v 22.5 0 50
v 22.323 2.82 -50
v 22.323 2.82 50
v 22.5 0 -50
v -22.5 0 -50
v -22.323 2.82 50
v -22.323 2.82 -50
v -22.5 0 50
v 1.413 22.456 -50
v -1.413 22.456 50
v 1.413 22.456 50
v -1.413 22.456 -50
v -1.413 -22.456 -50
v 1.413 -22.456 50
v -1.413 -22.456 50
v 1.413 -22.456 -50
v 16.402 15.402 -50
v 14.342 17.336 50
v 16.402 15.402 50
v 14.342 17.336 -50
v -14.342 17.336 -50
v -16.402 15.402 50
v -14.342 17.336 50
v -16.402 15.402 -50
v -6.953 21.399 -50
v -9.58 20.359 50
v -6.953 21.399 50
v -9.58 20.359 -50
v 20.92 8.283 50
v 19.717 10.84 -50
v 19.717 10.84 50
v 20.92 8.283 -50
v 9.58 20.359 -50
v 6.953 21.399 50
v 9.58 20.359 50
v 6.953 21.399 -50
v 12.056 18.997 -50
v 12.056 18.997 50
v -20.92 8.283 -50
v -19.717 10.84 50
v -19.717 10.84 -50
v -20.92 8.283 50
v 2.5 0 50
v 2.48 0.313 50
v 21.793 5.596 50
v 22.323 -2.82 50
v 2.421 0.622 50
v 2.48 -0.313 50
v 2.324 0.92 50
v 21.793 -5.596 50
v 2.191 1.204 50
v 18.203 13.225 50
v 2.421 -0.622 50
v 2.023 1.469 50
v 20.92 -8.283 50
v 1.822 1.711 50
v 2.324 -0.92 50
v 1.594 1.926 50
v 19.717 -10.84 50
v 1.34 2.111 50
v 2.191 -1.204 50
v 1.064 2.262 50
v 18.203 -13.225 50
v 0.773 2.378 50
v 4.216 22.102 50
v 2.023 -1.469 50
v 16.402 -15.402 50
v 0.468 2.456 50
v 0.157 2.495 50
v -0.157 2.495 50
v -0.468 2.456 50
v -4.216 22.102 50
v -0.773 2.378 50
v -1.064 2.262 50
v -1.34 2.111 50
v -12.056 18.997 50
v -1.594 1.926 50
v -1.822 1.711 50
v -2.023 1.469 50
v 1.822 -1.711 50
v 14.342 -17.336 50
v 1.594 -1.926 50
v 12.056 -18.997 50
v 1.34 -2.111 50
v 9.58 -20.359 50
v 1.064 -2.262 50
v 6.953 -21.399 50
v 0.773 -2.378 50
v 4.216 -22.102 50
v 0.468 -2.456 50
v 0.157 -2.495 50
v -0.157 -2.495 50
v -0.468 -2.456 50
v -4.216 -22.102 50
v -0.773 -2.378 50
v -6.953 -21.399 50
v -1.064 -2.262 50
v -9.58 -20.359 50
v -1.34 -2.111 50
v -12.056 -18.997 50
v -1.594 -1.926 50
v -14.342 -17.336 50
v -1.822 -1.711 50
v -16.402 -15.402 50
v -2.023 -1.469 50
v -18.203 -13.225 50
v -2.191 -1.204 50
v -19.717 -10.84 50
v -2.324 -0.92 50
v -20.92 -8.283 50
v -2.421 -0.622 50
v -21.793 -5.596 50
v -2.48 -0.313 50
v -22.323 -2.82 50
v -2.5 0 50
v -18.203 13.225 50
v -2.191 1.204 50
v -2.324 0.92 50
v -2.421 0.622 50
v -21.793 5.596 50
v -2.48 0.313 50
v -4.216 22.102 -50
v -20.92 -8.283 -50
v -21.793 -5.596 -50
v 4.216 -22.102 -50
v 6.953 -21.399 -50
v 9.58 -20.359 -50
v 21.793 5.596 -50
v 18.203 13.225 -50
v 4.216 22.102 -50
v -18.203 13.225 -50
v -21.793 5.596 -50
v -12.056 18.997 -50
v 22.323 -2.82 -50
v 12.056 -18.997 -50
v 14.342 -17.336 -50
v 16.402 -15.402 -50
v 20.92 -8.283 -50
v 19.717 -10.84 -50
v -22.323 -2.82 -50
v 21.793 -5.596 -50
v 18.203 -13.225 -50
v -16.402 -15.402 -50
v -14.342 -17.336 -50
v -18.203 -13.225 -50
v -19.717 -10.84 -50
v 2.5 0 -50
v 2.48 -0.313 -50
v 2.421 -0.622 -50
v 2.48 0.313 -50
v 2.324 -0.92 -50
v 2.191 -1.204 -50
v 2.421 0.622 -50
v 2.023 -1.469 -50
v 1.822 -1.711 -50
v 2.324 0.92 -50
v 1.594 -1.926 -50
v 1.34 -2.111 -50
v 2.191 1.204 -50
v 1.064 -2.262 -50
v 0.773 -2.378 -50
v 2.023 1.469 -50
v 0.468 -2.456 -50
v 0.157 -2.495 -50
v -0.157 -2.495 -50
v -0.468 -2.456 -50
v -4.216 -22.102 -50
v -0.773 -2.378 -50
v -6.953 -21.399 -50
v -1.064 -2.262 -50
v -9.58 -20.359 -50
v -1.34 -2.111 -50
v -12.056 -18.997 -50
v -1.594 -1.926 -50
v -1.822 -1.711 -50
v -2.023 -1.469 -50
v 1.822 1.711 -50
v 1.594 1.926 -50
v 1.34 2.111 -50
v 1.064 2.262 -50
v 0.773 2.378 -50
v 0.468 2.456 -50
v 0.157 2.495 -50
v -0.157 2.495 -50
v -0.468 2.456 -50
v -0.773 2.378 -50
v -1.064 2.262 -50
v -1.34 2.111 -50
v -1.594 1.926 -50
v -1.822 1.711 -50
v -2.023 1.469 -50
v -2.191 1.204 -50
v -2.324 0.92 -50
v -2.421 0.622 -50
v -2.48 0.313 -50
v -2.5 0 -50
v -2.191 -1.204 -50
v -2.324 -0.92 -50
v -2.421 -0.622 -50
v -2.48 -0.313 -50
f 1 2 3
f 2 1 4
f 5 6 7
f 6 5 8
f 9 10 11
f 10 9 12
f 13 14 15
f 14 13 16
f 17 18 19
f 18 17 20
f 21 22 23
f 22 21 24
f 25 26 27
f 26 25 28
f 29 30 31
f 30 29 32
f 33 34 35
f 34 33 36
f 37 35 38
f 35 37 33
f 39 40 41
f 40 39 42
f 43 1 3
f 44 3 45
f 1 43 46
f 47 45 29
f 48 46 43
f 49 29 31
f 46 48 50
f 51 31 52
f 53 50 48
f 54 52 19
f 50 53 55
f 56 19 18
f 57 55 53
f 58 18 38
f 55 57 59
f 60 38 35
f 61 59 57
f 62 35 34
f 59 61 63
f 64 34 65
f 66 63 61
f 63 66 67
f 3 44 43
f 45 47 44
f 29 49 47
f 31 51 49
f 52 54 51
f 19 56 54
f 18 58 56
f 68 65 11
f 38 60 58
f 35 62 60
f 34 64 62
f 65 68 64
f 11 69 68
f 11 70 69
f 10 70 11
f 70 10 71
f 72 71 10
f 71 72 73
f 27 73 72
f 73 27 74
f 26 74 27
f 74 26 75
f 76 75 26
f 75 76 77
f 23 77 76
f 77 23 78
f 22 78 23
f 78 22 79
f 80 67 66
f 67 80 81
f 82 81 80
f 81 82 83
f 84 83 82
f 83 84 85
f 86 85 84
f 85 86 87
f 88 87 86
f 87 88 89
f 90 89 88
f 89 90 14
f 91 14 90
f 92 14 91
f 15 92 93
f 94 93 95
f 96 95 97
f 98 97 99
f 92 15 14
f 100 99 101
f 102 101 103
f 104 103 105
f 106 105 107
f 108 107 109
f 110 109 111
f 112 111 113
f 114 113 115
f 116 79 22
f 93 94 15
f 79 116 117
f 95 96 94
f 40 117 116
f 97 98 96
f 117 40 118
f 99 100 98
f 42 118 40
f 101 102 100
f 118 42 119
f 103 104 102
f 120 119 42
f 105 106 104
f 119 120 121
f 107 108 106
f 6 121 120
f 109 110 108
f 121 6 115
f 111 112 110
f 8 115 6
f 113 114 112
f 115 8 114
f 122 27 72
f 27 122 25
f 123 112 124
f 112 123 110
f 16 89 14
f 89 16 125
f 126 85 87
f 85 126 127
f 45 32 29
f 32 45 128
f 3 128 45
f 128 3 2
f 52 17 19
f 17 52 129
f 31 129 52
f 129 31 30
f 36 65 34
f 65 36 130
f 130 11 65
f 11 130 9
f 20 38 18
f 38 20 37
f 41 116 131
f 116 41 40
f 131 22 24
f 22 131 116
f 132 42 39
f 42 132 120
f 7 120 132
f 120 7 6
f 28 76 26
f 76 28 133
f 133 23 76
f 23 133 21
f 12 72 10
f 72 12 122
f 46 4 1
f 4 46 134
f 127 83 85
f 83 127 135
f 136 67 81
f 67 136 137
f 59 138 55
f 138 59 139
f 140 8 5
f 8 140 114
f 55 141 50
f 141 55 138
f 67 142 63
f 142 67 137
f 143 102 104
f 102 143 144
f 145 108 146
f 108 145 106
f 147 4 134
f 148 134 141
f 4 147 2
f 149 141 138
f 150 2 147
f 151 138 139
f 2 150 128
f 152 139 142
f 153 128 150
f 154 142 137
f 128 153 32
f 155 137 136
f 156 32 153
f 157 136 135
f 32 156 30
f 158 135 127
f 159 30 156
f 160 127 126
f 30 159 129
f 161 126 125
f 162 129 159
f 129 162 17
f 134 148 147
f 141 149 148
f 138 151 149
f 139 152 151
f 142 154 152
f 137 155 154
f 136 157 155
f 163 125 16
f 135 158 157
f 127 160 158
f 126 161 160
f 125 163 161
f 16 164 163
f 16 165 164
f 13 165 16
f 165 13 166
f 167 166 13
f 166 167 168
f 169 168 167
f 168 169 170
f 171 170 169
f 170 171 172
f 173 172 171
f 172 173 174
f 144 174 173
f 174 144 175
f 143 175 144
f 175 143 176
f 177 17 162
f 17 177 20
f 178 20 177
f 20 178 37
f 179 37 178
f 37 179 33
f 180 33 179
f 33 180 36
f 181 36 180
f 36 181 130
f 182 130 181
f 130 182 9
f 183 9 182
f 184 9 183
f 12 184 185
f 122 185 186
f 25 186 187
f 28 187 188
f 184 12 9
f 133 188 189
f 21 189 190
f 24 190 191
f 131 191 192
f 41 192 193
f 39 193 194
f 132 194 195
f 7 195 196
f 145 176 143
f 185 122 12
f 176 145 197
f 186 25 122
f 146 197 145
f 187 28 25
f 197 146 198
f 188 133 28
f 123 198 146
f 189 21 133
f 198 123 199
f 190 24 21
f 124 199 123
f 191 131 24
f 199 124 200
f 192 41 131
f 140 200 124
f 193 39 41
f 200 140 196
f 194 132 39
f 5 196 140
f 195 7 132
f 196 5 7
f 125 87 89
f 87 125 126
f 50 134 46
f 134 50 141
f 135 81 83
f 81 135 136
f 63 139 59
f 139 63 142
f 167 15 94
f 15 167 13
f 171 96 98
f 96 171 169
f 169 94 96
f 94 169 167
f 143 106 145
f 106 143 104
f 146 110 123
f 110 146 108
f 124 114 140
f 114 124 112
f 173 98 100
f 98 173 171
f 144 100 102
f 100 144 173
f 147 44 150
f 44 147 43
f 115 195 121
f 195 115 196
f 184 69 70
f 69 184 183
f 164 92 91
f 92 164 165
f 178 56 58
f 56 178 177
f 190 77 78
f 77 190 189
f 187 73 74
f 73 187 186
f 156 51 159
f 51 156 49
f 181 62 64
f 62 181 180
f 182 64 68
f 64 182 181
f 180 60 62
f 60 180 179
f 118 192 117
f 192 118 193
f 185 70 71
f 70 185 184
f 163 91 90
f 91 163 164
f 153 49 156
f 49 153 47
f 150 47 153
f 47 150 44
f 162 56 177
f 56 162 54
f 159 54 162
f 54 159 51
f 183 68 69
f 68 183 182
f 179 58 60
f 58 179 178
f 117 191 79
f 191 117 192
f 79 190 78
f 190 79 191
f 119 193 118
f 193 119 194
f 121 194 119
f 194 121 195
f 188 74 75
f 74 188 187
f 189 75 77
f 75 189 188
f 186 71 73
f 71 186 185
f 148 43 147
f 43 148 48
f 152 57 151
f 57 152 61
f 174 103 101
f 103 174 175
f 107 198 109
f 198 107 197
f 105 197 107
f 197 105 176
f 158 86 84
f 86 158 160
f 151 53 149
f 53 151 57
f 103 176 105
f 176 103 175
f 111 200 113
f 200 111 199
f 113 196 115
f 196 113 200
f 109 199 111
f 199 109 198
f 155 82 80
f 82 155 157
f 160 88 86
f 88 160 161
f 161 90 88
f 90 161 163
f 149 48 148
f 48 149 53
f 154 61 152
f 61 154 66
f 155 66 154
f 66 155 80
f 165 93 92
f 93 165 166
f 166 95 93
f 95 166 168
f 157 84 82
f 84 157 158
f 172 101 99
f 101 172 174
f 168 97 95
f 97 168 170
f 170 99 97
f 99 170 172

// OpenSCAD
$fn = 50;


difference() {
	union() {
		translate(v = [0, 0, -50.0000000000]) {
			cylinder(h = 100, r = 22.5000000000);
		}
	}
	union() {
		translate(v = [0, 0, -100.0000000000]) {
			cylinder(h = 200, r = 2.5000000000);
		}
	}
}
